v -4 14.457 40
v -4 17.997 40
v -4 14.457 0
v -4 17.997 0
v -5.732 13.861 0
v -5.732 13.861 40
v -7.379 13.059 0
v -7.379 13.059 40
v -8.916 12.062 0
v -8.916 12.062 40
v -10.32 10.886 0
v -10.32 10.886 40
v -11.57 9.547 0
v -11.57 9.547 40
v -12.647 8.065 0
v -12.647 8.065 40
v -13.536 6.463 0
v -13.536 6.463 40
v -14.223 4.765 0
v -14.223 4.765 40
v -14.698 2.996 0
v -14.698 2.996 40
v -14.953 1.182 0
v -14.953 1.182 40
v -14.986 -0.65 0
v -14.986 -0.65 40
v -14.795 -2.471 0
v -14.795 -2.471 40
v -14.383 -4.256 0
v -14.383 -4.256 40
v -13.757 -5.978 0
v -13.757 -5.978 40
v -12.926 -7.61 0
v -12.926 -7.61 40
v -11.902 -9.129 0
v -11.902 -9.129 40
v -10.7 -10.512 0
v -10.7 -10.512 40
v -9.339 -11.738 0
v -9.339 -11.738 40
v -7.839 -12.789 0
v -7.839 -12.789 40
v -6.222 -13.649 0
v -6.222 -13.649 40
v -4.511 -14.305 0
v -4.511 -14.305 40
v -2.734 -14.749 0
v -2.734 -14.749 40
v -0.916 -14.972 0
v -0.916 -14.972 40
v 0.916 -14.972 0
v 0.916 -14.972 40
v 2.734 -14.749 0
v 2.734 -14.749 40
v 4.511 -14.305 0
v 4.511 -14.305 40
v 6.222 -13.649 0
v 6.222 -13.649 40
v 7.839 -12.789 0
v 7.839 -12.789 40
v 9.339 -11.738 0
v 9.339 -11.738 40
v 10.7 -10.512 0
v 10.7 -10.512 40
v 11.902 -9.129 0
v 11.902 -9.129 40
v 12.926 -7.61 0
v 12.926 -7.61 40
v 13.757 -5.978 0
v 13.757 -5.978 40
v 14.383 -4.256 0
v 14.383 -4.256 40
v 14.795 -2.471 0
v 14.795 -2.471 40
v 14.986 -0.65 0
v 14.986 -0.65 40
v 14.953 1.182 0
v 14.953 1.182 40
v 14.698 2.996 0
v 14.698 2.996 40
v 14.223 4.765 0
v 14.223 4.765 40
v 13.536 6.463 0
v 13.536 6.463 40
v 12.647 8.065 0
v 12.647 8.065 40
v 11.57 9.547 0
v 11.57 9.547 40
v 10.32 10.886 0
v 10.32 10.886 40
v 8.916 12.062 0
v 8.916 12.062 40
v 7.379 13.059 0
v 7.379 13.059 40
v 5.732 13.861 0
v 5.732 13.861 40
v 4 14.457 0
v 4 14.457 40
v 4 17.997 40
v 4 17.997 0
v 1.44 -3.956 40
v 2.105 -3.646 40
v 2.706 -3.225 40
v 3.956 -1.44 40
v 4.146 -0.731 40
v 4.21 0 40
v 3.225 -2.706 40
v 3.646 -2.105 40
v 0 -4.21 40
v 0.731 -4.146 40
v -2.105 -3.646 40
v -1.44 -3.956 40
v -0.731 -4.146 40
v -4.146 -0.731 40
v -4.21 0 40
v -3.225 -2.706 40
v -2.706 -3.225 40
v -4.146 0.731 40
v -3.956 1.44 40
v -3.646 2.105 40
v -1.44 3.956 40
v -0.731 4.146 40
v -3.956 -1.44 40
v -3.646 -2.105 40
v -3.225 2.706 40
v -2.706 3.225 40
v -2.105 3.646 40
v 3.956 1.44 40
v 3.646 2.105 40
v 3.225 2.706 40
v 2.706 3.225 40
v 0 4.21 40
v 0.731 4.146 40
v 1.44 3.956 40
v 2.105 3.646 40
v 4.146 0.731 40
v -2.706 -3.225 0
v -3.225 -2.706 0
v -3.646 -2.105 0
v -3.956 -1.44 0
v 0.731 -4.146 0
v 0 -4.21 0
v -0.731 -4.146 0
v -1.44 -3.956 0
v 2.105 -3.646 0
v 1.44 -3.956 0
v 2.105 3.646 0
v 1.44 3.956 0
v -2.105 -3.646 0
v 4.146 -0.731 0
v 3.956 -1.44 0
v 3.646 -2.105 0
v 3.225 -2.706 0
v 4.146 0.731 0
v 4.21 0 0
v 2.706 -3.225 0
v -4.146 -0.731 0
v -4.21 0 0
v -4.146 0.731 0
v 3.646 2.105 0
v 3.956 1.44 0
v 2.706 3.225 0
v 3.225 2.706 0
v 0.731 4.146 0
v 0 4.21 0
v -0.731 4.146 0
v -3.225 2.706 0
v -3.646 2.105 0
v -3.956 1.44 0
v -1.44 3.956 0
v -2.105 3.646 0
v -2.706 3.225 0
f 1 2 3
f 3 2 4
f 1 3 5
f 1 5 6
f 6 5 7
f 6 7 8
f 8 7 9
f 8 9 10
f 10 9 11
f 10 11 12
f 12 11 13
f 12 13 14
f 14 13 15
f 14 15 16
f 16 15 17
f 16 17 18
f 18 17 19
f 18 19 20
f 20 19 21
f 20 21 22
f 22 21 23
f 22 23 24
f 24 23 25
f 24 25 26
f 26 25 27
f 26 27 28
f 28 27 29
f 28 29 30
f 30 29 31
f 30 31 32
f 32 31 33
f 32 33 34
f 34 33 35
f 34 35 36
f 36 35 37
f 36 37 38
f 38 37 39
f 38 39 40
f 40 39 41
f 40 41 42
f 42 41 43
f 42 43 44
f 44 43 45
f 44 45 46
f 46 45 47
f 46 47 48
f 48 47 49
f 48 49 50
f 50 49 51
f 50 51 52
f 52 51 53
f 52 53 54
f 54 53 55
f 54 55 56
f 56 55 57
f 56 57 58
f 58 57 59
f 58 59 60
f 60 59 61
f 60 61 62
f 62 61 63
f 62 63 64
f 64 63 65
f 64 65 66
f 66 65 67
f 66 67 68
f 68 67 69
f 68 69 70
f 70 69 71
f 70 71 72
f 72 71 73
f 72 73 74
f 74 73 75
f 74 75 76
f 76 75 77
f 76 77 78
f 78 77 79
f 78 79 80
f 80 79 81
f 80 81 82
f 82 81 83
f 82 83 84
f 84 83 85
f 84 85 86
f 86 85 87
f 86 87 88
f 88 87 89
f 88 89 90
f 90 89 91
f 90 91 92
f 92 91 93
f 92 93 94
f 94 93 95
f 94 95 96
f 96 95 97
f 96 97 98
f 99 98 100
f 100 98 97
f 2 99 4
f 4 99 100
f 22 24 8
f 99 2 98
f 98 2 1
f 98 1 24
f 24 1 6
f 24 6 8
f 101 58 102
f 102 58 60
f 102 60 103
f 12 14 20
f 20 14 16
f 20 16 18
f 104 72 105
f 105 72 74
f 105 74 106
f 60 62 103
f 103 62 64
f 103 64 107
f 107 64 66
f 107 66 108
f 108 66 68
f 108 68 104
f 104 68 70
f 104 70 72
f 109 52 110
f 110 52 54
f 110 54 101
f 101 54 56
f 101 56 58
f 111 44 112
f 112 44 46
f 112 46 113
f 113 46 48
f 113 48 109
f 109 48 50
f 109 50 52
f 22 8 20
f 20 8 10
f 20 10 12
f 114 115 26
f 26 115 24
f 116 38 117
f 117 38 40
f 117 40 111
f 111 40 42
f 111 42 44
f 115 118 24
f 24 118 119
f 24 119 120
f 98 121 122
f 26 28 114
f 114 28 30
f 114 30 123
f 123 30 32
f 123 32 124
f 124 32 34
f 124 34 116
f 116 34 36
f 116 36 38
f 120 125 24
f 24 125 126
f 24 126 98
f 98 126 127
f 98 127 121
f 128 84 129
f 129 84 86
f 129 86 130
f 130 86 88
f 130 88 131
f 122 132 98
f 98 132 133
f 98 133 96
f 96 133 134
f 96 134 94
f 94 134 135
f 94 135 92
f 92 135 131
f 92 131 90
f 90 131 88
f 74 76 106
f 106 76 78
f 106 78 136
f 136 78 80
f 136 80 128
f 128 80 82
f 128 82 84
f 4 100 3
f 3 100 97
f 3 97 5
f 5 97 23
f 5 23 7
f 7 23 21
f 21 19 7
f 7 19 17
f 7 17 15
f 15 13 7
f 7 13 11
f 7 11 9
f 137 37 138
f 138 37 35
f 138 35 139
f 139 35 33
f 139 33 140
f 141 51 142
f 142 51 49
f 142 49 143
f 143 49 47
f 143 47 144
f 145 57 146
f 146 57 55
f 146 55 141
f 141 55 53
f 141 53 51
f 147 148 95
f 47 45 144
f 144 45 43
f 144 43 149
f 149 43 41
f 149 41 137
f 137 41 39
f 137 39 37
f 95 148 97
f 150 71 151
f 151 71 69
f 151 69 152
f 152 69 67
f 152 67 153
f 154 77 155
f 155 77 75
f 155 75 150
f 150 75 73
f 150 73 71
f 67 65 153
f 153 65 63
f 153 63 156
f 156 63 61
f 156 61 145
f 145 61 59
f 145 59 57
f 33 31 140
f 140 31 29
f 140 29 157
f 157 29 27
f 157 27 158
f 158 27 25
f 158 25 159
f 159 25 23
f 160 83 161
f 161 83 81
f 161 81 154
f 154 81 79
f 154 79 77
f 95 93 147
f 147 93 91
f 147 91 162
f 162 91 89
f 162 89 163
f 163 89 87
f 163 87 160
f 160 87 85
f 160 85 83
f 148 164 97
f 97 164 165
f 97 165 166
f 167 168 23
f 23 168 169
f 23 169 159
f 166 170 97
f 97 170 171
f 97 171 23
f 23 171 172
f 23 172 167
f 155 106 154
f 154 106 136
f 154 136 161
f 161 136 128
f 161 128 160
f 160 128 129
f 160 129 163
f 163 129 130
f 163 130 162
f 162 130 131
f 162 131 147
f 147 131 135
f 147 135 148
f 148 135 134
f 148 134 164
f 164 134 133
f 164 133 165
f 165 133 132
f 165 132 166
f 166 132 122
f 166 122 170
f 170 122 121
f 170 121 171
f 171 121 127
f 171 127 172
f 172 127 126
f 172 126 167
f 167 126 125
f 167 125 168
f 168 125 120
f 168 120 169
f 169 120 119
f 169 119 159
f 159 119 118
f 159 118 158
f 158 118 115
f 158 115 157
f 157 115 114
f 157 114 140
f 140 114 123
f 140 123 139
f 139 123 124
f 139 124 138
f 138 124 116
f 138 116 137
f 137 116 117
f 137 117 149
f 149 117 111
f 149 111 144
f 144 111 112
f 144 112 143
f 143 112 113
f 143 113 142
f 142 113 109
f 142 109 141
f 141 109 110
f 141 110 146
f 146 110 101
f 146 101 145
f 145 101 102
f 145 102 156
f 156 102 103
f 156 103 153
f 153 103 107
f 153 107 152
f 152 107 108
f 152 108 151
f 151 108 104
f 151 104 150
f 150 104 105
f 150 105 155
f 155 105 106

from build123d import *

# Parameters (mm, degrees)
BOSS_EXTRUDE1_DEPTH = 40
SKETCH2_R           = 4.21
CUT_EXTRUDE1_DEPTH  = 40


with BuildPart() as part:
    # Sketch1 → Boss-Extrude1 (new body)
    with BuildSketch(Plane.XY):
        with BuildLine():
            Line((4, 17.996832295), (-4, 17.996832295))
            Line((-4, 17.996832295), (-4, 14.456832295))
            ThreePointArc((-4, 14.456832295), (0, -15), (4, 14.456832295))
            Line((4, 14.456832295), (4, 17.996832295))
        make_face()
    extrude(amount=BOSS_EXTRUDE1_DEPTH)

    # Sketch2 → Cut-Extrude1 (cut)
    with BuildSketch(Plane.XY.offset(40)):
        Circle(SKETCH2_R)
    extrude(amount=-CUT_EXTRUDE1_DEPTH, mode=Mode.SUBTRACT)


solid = part.part
